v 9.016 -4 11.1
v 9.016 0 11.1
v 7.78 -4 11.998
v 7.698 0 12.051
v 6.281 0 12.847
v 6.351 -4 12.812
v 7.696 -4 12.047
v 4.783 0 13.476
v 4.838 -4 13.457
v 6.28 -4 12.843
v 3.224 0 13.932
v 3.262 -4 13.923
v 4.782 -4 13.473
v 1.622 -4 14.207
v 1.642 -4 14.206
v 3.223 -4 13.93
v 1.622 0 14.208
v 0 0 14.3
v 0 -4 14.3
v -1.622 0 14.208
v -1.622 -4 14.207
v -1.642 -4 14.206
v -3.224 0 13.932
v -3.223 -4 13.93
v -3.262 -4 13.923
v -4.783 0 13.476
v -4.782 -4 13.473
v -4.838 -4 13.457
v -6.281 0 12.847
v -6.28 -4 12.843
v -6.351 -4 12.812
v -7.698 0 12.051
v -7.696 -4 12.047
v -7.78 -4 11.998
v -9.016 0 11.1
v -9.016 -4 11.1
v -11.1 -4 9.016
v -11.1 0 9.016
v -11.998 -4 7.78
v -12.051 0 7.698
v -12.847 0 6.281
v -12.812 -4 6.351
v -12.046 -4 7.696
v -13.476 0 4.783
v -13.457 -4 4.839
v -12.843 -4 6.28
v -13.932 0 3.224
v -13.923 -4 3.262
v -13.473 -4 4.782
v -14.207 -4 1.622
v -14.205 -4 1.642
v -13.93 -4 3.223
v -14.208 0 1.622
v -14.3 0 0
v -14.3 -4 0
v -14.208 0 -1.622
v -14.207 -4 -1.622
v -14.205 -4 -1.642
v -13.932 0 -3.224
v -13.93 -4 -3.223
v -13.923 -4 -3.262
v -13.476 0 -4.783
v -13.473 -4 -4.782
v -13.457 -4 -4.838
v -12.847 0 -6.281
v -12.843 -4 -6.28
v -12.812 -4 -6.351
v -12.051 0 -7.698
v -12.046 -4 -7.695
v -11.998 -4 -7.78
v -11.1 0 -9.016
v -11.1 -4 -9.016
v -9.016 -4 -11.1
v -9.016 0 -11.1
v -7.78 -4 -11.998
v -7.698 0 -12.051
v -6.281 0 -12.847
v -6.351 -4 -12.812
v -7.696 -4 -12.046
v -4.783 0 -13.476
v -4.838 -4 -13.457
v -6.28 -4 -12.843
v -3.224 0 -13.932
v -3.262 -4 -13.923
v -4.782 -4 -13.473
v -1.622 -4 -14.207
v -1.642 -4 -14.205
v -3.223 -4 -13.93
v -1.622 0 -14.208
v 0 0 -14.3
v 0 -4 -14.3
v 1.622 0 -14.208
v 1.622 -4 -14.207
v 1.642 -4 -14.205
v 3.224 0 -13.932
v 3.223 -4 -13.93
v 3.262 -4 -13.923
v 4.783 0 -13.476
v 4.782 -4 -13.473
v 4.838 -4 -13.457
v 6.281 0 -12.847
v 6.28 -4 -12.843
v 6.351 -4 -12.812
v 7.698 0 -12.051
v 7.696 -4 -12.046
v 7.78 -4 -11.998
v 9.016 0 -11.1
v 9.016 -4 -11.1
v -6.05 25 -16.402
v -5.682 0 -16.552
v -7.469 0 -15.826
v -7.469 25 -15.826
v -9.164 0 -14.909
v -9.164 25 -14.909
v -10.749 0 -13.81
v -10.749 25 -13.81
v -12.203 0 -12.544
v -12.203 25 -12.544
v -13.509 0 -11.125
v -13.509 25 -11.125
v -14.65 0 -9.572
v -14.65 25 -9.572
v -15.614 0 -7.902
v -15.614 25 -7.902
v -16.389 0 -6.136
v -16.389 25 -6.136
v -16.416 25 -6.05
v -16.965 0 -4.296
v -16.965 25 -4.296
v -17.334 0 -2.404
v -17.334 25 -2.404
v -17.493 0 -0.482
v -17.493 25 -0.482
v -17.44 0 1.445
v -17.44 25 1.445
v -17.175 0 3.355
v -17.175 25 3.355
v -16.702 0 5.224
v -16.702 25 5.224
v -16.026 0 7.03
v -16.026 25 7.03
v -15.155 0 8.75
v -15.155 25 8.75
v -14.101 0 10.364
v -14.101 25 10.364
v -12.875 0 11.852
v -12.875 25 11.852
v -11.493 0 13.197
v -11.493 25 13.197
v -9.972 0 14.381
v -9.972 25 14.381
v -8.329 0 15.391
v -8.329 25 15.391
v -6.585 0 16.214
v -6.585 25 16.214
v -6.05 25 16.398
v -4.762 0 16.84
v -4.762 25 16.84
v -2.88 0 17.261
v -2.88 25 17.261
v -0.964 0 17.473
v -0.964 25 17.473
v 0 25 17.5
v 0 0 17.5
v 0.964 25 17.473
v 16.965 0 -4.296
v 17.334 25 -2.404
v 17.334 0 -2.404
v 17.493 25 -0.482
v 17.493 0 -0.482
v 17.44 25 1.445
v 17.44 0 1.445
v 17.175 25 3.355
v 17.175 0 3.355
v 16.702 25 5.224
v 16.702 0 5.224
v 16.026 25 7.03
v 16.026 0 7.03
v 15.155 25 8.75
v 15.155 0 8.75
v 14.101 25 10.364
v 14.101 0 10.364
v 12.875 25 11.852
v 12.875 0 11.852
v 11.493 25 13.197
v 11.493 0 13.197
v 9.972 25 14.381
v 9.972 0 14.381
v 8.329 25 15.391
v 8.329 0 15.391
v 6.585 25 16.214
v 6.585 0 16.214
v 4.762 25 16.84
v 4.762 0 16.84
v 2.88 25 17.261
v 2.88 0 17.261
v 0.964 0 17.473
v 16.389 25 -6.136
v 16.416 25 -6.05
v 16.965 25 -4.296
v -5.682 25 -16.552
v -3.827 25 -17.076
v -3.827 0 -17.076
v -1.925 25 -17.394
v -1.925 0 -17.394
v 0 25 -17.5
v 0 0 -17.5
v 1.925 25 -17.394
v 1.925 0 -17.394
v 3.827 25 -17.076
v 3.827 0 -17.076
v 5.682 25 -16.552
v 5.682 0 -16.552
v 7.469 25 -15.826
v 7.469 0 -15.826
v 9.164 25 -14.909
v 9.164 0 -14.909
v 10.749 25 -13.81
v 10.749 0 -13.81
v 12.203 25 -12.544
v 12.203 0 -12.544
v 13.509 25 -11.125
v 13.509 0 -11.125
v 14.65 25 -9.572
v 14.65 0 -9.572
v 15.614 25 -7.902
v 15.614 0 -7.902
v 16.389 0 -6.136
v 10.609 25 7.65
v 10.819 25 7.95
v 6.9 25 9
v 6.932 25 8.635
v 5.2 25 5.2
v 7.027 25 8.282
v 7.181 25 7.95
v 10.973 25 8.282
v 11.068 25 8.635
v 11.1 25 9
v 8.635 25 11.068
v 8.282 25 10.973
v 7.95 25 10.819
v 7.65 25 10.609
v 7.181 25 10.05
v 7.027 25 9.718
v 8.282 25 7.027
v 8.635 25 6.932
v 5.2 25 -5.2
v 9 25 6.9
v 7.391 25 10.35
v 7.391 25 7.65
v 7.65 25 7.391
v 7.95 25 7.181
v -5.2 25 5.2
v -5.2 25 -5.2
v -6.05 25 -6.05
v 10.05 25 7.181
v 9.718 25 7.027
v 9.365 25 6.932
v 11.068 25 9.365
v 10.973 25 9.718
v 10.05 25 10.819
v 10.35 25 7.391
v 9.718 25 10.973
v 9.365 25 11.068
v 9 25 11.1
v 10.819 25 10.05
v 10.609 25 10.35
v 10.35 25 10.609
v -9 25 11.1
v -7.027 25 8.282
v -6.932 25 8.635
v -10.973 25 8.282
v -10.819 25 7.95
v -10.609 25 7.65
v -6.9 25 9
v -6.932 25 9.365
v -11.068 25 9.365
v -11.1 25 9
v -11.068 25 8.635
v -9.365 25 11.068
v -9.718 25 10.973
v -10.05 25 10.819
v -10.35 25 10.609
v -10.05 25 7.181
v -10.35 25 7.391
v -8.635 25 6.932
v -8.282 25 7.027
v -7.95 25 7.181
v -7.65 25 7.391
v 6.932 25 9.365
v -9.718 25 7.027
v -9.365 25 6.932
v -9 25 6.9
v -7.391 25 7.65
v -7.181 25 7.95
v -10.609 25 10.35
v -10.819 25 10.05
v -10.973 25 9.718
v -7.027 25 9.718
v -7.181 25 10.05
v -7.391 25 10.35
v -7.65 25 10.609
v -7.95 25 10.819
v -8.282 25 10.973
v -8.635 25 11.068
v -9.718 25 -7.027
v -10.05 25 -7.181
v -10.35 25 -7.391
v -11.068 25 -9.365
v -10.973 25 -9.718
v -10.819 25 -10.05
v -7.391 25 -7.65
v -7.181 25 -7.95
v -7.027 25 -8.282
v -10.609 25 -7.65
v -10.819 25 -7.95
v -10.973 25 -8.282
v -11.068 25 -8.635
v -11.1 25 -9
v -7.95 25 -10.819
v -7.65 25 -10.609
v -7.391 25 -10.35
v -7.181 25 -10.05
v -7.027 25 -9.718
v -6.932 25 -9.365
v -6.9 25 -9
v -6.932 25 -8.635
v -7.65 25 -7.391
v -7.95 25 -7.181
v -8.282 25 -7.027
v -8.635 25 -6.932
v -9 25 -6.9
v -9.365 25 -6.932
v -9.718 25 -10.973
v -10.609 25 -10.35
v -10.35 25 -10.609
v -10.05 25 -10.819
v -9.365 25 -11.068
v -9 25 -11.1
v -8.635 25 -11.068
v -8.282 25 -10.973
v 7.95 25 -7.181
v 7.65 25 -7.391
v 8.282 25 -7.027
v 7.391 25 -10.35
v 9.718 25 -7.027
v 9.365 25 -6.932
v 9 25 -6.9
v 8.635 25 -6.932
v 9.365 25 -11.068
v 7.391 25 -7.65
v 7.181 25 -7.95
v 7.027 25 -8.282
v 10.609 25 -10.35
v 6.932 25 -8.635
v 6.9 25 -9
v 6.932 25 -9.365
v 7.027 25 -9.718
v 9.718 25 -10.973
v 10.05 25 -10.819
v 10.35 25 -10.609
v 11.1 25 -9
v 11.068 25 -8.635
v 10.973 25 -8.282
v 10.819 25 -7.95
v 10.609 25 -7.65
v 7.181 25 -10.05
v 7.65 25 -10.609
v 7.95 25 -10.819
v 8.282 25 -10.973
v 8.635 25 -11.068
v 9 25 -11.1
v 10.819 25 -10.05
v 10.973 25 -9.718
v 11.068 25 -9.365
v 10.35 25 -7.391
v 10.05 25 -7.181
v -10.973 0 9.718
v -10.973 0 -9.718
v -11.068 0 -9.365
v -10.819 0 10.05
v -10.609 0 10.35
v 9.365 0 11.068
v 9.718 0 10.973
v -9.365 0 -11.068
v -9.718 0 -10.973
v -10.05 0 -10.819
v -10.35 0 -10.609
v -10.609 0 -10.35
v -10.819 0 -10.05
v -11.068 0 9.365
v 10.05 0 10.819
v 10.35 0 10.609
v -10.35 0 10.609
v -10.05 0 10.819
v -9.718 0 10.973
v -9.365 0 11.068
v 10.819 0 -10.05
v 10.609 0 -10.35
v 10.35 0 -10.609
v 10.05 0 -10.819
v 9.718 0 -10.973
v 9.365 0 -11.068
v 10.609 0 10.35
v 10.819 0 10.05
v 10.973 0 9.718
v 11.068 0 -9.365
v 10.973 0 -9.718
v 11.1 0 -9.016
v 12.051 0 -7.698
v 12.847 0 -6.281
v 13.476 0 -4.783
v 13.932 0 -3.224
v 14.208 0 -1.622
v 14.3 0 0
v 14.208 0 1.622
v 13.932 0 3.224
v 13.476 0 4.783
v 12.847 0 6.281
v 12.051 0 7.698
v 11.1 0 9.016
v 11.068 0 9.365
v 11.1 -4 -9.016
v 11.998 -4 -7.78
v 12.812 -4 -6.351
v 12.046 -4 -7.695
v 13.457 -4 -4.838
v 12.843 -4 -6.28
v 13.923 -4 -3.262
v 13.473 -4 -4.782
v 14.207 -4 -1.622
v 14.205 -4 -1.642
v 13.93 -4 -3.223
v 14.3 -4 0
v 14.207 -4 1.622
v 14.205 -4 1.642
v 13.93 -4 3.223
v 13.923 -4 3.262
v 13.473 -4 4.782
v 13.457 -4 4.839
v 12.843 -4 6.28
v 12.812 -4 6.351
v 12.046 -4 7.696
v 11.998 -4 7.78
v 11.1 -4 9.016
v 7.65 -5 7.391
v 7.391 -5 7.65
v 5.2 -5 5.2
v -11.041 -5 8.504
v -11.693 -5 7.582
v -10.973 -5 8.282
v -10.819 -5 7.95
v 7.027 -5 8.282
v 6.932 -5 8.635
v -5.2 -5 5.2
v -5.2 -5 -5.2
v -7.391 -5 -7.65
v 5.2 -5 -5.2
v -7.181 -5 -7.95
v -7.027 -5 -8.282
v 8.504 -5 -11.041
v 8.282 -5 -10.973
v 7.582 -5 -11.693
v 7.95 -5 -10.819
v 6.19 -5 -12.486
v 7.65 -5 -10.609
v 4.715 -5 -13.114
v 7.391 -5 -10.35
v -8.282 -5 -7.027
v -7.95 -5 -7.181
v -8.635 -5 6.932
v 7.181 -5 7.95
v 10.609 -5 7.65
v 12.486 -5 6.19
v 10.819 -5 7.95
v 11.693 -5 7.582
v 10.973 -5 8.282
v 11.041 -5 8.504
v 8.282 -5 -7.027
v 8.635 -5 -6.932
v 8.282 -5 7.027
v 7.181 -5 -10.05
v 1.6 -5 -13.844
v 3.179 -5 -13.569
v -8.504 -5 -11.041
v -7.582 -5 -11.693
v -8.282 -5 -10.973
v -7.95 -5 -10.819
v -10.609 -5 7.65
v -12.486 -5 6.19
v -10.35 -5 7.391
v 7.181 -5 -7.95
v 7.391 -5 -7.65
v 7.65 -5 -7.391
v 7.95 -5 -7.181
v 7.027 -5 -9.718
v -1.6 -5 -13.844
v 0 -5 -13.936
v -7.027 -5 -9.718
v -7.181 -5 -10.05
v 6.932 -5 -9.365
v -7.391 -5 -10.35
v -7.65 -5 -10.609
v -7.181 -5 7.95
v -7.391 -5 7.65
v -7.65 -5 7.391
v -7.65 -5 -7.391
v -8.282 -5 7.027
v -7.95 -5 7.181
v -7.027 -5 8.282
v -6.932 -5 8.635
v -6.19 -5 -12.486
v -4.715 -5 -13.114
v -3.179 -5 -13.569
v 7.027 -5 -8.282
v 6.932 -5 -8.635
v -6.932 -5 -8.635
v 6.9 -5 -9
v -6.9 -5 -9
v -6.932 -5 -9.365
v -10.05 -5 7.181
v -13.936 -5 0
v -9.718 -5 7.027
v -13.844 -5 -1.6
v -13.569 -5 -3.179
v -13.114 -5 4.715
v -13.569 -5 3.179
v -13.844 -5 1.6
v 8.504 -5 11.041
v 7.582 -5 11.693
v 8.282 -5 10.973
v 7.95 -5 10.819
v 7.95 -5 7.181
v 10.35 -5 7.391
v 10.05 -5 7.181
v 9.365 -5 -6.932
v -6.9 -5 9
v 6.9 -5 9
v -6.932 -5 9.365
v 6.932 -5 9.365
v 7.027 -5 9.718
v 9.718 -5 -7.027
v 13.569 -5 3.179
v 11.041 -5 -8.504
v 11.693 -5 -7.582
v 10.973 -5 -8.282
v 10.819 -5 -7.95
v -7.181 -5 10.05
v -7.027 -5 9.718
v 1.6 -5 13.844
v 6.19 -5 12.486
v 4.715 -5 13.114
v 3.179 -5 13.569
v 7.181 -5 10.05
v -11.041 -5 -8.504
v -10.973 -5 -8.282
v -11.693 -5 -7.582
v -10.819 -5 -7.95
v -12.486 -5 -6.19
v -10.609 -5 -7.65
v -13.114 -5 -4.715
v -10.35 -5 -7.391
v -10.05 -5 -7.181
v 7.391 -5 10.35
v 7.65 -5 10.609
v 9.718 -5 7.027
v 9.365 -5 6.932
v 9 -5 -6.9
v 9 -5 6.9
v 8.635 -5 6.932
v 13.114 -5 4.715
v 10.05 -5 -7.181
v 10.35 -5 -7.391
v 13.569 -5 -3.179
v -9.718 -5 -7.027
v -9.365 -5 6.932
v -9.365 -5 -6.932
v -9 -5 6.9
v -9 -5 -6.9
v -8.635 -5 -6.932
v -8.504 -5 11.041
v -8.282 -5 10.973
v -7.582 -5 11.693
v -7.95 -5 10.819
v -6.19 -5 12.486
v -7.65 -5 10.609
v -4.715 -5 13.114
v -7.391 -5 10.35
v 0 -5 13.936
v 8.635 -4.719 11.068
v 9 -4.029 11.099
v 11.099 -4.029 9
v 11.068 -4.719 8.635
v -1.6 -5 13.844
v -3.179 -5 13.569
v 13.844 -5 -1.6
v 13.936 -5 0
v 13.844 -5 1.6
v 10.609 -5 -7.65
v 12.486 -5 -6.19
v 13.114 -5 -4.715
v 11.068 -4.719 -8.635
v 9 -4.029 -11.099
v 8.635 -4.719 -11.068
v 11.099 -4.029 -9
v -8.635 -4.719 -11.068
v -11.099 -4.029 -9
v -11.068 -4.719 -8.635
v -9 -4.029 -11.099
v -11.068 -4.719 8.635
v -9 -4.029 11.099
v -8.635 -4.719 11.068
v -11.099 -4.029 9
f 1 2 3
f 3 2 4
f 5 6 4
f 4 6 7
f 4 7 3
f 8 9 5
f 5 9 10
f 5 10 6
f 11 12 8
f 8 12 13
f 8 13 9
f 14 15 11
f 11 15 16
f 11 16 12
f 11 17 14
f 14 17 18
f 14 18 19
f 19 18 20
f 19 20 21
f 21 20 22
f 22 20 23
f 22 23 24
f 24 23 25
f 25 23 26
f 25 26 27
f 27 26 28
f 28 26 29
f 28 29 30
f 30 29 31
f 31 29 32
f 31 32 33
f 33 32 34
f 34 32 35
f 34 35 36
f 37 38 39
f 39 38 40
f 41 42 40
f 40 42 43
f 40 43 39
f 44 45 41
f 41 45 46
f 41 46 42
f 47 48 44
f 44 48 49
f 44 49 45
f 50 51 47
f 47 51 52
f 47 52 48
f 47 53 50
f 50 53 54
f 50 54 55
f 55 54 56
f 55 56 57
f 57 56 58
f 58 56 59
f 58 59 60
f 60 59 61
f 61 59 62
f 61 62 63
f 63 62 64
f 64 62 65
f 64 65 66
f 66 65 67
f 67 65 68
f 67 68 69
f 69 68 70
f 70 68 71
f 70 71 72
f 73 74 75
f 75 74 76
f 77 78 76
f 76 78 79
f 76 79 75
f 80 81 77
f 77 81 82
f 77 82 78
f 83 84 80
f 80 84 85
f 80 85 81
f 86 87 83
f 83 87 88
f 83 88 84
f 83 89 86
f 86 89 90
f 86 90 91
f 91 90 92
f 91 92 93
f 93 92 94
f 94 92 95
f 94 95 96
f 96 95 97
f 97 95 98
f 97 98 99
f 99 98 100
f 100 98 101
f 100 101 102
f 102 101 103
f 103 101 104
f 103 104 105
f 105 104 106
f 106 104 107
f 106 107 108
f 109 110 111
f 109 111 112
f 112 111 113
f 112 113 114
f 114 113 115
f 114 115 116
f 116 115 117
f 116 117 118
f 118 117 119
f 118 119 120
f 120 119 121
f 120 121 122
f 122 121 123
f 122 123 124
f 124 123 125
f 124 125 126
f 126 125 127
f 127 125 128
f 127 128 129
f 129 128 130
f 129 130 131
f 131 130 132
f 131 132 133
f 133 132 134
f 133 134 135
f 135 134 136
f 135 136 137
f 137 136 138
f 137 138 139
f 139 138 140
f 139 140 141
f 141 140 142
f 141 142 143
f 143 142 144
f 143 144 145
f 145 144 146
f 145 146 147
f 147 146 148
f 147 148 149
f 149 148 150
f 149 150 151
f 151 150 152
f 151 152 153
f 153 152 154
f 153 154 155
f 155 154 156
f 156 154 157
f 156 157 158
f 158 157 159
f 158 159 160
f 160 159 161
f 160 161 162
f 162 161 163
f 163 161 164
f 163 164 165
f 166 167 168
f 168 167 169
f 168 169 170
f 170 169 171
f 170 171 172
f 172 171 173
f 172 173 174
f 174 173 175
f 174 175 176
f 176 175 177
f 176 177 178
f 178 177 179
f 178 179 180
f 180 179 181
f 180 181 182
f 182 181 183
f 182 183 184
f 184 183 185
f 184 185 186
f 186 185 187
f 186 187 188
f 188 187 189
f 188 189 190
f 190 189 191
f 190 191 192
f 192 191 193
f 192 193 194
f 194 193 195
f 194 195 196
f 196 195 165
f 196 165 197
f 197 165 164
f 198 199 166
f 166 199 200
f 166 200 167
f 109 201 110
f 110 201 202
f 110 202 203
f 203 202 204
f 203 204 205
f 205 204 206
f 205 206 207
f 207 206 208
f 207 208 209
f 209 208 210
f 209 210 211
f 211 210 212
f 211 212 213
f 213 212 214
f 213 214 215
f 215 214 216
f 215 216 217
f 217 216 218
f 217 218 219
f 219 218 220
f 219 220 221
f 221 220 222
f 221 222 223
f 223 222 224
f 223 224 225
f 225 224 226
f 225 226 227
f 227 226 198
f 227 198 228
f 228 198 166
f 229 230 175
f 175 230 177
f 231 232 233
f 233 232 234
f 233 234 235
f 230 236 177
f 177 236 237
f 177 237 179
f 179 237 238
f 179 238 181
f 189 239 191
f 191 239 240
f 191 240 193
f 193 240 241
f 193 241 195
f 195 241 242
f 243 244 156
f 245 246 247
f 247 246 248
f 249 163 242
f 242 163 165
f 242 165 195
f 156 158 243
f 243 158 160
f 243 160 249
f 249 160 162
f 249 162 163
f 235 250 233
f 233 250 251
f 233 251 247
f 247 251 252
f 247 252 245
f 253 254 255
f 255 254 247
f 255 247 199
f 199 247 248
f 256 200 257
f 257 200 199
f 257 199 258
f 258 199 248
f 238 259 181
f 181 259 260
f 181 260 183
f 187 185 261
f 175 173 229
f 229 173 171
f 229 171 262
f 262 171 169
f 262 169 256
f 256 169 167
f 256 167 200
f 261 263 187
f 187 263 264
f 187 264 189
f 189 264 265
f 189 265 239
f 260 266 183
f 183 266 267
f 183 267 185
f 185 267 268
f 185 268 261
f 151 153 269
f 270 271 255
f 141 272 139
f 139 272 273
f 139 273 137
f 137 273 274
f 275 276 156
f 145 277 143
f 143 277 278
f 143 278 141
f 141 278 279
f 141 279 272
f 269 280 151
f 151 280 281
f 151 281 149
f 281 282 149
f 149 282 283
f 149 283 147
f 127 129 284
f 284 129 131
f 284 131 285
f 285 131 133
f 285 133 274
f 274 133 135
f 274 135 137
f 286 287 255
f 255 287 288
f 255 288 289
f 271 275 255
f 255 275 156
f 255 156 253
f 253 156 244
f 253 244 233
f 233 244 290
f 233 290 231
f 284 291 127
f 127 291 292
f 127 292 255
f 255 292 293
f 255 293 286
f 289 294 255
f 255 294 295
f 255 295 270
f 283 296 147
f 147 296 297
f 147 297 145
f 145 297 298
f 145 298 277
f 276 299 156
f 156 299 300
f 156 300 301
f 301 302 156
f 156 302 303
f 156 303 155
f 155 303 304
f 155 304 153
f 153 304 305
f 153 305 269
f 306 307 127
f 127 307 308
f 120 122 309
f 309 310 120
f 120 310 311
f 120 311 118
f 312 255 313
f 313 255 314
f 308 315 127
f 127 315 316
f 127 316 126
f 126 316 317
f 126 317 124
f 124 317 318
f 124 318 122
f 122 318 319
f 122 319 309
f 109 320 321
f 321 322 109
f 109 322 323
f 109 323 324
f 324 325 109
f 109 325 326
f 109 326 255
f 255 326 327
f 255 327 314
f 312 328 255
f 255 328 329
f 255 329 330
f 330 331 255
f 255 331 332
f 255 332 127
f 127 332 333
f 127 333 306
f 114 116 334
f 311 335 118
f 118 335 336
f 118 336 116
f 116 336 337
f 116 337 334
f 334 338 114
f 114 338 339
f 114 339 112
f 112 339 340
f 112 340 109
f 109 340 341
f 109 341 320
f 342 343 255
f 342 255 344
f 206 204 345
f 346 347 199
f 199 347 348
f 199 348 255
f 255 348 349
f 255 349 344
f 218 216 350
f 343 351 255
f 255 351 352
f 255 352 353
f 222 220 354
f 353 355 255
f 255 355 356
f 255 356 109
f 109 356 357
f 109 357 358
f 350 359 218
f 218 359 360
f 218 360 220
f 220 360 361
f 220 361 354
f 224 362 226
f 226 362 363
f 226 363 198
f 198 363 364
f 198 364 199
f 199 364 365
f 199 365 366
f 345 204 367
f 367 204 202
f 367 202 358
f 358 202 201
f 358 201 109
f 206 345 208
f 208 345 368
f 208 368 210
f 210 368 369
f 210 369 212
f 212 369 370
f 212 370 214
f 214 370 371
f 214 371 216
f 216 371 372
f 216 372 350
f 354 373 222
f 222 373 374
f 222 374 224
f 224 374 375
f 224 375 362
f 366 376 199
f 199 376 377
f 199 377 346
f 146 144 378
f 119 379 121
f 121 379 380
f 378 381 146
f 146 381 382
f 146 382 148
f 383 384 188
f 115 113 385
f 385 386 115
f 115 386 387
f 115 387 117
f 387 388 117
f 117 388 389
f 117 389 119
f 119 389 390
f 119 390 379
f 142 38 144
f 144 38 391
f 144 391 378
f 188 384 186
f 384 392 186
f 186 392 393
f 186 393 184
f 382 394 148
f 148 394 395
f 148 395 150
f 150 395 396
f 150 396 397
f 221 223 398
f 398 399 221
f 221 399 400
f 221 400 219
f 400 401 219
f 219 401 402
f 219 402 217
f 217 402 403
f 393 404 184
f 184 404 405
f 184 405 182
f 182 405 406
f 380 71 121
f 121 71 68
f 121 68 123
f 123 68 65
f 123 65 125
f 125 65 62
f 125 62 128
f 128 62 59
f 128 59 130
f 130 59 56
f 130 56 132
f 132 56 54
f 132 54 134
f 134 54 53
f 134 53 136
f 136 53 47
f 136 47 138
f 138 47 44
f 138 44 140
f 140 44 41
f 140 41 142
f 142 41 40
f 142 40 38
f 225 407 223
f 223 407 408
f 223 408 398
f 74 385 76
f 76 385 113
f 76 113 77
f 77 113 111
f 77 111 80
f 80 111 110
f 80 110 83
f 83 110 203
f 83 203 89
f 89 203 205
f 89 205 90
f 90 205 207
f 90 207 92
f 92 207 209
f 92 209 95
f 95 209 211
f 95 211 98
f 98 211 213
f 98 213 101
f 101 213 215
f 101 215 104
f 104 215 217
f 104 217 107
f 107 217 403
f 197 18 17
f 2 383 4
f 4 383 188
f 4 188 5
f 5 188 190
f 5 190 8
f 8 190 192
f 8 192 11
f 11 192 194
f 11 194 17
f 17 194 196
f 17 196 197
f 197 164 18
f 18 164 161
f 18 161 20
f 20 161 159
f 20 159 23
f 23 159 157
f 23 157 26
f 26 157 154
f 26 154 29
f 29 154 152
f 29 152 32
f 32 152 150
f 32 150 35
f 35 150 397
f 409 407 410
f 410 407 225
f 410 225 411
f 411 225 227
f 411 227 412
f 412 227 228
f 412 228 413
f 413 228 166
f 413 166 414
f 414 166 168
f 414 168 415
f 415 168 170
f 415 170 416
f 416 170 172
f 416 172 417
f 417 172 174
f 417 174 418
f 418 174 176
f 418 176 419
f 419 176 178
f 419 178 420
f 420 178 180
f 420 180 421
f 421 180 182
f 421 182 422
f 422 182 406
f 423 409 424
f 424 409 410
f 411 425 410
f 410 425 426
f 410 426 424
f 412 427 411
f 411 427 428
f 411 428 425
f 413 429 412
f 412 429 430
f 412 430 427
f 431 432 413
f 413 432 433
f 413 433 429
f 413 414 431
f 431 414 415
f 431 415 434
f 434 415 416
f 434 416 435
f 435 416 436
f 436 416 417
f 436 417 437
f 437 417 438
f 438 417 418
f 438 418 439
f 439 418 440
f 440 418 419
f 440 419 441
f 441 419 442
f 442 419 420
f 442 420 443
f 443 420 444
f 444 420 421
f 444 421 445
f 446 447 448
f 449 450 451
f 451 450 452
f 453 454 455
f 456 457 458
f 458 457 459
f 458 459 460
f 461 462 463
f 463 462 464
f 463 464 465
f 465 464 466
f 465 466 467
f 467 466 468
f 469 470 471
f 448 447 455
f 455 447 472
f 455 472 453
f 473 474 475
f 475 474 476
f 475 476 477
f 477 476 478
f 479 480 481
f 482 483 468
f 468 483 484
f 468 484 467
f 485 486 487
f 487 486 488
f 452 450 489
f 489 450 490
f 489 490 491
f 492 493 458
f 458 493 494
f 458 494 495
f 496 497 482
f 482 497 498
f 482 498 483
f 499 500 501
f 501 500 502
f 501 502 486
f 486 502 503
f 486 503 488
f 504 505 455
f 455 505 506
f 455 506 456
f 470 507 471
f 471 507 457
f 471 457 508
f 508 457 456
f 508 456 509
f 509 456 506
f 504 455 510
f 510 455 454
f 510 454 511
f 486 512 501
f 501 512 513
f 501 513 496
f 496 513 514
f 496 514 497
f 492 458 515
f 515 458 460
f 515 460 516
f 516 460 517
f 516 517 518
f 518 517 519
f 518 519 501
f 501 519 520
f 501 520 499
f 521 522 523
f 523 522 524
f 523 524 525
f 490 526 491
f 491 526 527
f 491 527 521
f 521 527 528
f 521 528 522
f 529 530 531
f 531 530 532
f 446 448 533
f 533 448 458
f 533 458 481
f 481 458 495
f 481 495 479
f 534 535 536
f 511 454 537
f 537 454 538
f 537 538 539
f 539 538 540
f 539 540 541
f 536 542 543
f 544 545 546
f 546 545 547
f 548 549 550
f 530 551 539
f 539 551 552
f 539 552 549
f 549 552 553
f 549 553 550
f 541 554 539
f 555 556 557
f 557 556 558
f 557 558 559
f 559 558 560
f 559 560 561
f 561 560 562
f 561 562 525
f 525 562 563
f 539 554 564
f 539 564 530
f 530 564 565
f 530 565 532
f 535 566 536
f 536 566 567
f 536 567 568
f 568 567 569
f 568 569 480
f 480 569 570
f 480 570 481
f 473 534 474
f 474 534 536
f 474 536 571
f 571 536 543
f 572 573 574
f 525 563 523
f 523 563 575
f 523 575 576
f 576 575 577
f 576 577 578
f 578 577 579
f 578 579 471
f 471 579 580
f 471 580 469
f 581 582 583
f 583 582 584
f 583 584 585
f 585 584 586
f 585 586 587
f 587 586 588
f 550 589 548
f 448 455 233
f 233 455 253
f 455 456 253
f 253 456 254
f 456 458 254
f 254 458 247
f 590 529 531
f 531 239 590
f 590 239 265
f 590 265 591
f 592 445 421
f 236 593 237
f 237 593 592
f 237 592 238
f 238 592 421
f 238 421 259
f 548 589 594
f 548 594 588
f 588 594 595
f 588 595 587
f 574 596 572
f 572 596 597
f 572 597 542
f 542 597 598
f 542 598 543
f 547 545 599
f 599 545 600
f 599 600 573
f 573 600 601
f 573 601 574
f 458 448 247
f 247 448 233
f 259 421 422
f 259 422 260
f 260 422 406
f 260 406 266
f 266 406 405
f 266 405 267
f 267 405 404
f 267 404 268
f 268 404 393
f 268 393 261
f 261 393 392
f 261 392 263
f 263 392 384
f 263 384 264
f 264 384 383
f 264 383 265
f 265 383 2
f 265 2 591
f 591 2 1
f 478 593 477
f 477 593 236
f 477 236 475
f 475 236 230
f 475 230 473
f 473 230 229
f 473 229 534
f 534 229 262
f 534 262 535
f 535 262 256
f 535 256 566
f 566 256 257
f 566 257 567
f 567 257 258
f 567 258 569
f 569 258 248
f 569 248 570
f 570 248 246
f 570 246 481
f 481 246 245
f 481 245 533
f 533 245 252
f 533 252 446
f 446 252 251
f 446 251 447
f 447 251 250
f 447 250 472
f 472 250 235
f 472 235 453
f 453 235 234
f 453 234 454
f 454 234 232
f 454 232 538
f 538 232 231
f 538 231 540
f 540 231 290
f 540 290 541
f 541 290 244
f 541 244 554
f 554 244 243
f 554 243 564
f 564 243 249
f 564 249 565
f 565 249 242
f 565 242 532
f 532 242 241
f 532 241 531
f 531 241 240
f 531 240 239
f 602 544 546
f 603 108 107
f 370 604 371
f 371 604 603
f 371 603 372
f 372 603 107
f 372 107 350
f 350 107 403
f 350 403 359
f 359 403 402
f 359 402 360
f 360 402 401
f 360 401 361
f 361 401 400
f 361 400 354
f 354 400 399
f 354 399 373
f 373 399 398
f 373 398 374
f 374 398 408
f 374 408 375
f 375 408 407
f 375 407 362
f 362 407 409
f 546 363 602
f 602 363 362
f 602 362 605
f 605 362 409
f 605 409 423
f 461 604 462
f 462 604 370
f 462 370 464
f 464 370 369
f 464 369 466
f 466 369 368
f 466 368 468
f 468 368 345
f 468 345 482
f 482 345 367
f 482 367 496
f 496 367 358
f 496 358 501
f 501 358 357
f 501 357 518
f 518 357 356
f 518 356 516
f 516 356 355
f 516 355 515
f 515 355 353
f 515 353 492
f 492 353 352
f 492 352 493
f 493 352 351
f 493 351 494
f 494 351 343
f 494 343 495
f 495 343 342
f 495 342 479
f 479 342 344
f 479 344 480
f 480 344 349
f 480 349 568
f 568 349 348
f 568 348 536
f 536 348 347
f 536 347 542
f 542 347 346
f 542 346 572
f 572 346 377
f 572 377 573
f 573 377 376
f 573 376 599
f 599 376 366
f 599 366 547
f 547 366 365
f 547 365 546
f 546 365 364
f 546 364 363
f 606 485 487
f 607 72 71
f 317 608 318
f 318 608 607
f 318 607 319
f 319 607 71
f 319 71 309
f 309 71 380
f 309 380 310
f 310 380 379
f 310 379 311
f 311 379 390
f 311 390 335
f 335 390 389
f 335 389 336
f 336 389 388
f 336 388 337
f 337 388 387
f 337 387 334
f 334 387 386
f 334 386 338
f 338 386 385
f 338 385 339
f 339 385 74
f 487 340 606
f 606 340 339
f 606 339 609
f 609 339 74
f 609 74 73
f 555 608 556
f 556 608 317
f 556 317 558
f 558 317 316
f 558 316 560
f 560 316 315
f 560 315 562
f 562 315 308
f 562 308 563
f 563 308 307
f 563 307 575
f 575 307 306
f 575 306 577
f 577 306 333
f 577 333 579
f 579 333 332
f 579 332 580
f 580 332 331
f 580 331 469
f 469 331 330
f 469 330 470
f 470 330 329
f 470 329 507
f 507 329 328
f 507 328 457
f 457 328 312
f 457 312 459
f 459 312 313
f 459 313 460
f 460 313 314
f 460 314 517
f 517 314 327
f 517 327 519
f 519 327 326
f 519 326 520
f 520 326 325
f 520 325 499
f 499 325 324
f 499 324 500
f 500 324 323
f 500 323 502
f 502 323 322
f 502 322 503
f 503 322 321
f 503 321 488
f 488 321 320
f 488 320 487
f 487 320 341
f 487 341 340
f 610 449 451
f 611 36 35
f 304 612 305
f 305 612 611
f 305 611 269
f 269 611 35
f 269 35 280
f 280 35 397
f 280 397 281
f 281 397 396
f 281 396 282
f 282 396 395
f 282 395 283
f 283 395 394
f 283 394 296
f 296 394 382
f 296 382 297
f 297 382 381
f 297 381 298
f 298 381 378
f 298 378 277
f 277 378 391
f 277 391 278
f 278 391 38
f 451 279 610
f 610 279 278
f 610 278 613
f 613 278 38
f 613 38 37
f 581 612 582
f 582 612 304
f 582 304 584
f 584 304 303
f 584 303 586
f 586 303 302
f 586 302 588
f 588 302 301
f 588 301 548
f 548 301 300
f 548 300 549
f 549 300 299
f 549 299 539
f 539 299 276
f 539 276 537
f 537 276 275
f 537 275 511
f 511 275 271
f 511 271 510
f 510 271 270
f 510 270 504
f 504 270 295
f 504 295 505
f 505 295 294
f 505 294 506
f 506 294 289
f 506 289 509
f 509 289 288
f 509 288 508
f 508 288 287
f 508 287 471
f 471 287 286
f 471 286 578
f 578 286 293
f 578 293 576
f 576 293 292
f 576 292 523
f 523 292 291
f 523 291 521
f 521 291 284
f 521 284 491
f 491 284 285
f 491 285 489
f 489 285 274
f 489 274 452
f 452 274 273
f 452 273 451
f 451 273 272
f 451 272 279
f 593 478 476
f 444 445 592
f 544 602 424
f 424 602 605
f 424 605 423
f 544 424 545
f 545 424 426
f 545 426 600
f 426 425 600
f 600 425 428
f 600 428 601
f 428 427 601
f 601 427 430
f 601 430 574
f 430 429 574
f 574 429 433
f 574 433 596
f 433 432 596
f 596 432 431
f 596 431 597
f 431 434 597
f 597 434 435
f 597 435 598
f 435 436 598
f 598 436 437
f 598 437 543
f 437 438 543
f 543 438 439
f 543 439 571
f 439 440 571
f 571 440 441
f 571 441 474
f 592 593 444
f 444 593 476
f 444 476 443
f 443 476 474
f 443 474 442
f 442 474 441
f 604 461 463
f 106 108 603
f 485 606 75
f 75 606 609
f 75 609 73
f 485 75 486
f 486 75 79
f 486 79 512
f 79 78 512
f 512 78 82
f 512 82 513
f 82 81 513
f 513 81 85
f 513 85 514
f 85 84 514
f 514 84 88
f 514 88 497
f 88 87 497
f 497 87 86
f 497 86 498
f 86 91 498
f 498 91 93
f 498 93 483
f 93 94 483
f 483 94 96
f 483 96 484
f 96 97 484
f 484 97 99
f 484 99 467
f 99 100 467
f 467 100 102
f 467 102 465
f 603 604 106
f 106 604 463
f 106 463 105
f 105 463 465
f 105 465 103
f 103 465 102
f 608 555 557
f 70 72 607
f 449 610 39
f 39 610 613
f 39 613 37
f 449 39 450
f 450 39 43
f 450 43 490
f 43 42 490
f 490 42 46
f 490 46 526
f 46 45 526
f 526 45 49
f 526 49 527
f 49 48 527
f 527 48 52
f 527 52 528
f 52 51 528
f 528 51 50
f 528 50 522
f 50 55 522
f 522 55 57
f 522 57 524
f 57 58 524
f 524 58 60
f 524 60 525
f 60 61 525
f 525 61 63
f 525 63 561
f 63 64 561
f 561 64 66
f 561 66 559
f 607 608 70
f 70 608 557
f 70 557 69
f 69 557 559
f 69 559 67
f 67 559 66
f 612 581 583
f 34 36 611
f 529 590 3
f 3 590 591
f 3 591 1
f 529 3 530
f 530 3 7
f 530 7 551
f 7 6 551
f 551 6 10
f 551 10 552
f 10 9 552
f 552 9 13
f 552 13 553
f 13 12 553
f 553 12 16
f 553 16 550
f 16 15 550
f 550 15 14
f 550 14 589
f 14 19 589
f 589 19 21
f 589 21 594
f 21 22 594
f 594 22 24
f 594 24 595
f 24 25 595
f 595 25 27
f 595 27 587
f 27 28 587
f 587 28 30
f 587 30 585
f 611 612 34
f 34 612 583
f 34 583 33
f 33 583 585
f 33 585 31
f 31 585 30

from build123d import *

# Parameters (mm, degrees)
SKETCH1_R           = 17.5
BOSS_EXTRUDE1_DEPTH = 25
SKETCH3_R           = 14.3
BOSS_EXTRUDE2_DEPTH = 5
SKETCH4_W           = 10.4
SKETCH4_H           = 10.4
CUT_EXTRUDE1_DEPTH  = 39.890872965
SKETCH6_R           = 2.1
CUT_EXTRUDE2_DEPTH  = 39.890872965
CHAMFER1_SIZE       = 0.363970234
CHAMFER1_SIZE_2     = 1


with BuildPart() as part:
    # Sketch1 → Boss-Extrude1 (new body)
    with BuildSketch(Plane(origin=(0, 0, 0), x_dir=(1, 0, 0), z_dir=(0, 1, 0))):
        with Locations(Location((0, 0, 0), (0, 0, 270))):
            Circle(SKETCH1_R)
    extrude(amount=BOSS_EXTRUDE1_DEPTH)

    # Sketch3 → Boss-Extrude2 (add)
    with BuildSketch(Plane.XZ):
        with Locations(Location((0, 0, 0), (0, 0, 90))):
            Circle(SKETCH3_R)
    extrude(amount=BOSS_EXTRUDE2_DEPTH)

    # Sketch4 → Cut-Extrude1 (cut, through all)
    with BuildSketch(Plane(origin=(0, 25, 0), x_dir=(1, 0, 0), z_dir=(0, 1, 0))):
        Rectangle(SKETCH4_W, SKETCH4_H)
    extrude(amount=-CUT_EXTRUDE1_DEPTH, mode=Mode.SUBTRACT)

    # Sketch6 → Cut-Extrude2 (cut, through all)
    with BuildSketch(Plane(origin=(0, 25, 0), x_dir=(1, 0, 0), z_dir=(0, 1, 0))):
        with Locations(Location((9, -9, 0), (0, 0, 270))):
            Circle(SKETCH6_R)
        with Locations(Location((-9, -9, 0), (0, 0, 270))):
            Circle(SKETCH6_R)
        with Locations(Location((-9, 9, 0), (0, 0, 270))):
            Circle(SKETCH6_R)
        with Locations(Location((9, 9, 0), (0, 0, 270))):
            Circle(SKETCH6_R)
    extrude(amount=-CUT_EXTRUDE2_DEPTH, mode=Mode.SUBTRACT)

    # Chamfer1
    # the kernel refuses this chamfer: 1, 0.363970234 mm, written as the material it takes off along each edge
    with BuildSketch(Plane(origin=(0, -5, 0), x_dir=(-0.7601968687413804, 0, 0.649692789521171), z_dir=(-0.649692789521171, 0, -0.7601968687413804))) as chamfer1_piece_1:
        Polygon((14.3 - CHAMFER1_SIZE, 0), (14.3, CHAMFER1_SIZE_2), (14.3, 0), align=None)
    revolve(axis=Axis((0, -5, 0), (0, 1, 0)), revolution_arc=98.963112953, mode=Mode.SUBTRACT)
    with BuildSketch(Plane(origin=(0, -5, 0), x_dir=(-0.6496927895211715, 0, 0.7601968687413799), z_dir=(0.7601968687413799, 0, 0.6496927895211715))) as chamfer1_piece_2:
        Polygon((14.3 - CHAMFER1_SIZE, 0), (14.3, -CHAMFER1_SIZE_2), (14.3, 0), align=None)
    revolve(axis=Axis((0, -5, 0), (0, -1, 0)), revolution_arc=98.963112953, mode=Mode.SUBTRACT)
    with BuildSketch(Plane(origin=(0, -5, 0), x_dir=(-0.7601968687413795, 0, -0.6496927895211719), z_dir=(-0.6496927895211719, 0, 0.7601968687413795))) as chamfer1_piece_3:
        Polygon((14.3, -CHAMFER1_SIZE_2), (14.3 - CHAMFER1_SIZE, 0), (14.3, 0), align=None)
    revolve(axis=Axis((0, -5, 0), (0, -1, 0)), revolution_arc=98.963112953, mode=Mode.SUBTRACT)
    with BuildSketch(Plane(origin=(0, -5, 0), x_dir=(0.6496927895211716, 0, -0.7601968687413798), z_dir=(-0.7601968687413798, 0, -0.6496927895211716))) as chamfer1_piece_4:
        Polygon((14.3, -CHAMFER1_SIZE_2), (14.3 - CHAMFER1_SIZE, 0), (14.3, 0), align=None)
    revolve(axis=Axis((0, -5, 0), (0, -1, 0)), revolution_arc=98.963112953, mode=Mode.SUBTRACT)


solid = part.part
